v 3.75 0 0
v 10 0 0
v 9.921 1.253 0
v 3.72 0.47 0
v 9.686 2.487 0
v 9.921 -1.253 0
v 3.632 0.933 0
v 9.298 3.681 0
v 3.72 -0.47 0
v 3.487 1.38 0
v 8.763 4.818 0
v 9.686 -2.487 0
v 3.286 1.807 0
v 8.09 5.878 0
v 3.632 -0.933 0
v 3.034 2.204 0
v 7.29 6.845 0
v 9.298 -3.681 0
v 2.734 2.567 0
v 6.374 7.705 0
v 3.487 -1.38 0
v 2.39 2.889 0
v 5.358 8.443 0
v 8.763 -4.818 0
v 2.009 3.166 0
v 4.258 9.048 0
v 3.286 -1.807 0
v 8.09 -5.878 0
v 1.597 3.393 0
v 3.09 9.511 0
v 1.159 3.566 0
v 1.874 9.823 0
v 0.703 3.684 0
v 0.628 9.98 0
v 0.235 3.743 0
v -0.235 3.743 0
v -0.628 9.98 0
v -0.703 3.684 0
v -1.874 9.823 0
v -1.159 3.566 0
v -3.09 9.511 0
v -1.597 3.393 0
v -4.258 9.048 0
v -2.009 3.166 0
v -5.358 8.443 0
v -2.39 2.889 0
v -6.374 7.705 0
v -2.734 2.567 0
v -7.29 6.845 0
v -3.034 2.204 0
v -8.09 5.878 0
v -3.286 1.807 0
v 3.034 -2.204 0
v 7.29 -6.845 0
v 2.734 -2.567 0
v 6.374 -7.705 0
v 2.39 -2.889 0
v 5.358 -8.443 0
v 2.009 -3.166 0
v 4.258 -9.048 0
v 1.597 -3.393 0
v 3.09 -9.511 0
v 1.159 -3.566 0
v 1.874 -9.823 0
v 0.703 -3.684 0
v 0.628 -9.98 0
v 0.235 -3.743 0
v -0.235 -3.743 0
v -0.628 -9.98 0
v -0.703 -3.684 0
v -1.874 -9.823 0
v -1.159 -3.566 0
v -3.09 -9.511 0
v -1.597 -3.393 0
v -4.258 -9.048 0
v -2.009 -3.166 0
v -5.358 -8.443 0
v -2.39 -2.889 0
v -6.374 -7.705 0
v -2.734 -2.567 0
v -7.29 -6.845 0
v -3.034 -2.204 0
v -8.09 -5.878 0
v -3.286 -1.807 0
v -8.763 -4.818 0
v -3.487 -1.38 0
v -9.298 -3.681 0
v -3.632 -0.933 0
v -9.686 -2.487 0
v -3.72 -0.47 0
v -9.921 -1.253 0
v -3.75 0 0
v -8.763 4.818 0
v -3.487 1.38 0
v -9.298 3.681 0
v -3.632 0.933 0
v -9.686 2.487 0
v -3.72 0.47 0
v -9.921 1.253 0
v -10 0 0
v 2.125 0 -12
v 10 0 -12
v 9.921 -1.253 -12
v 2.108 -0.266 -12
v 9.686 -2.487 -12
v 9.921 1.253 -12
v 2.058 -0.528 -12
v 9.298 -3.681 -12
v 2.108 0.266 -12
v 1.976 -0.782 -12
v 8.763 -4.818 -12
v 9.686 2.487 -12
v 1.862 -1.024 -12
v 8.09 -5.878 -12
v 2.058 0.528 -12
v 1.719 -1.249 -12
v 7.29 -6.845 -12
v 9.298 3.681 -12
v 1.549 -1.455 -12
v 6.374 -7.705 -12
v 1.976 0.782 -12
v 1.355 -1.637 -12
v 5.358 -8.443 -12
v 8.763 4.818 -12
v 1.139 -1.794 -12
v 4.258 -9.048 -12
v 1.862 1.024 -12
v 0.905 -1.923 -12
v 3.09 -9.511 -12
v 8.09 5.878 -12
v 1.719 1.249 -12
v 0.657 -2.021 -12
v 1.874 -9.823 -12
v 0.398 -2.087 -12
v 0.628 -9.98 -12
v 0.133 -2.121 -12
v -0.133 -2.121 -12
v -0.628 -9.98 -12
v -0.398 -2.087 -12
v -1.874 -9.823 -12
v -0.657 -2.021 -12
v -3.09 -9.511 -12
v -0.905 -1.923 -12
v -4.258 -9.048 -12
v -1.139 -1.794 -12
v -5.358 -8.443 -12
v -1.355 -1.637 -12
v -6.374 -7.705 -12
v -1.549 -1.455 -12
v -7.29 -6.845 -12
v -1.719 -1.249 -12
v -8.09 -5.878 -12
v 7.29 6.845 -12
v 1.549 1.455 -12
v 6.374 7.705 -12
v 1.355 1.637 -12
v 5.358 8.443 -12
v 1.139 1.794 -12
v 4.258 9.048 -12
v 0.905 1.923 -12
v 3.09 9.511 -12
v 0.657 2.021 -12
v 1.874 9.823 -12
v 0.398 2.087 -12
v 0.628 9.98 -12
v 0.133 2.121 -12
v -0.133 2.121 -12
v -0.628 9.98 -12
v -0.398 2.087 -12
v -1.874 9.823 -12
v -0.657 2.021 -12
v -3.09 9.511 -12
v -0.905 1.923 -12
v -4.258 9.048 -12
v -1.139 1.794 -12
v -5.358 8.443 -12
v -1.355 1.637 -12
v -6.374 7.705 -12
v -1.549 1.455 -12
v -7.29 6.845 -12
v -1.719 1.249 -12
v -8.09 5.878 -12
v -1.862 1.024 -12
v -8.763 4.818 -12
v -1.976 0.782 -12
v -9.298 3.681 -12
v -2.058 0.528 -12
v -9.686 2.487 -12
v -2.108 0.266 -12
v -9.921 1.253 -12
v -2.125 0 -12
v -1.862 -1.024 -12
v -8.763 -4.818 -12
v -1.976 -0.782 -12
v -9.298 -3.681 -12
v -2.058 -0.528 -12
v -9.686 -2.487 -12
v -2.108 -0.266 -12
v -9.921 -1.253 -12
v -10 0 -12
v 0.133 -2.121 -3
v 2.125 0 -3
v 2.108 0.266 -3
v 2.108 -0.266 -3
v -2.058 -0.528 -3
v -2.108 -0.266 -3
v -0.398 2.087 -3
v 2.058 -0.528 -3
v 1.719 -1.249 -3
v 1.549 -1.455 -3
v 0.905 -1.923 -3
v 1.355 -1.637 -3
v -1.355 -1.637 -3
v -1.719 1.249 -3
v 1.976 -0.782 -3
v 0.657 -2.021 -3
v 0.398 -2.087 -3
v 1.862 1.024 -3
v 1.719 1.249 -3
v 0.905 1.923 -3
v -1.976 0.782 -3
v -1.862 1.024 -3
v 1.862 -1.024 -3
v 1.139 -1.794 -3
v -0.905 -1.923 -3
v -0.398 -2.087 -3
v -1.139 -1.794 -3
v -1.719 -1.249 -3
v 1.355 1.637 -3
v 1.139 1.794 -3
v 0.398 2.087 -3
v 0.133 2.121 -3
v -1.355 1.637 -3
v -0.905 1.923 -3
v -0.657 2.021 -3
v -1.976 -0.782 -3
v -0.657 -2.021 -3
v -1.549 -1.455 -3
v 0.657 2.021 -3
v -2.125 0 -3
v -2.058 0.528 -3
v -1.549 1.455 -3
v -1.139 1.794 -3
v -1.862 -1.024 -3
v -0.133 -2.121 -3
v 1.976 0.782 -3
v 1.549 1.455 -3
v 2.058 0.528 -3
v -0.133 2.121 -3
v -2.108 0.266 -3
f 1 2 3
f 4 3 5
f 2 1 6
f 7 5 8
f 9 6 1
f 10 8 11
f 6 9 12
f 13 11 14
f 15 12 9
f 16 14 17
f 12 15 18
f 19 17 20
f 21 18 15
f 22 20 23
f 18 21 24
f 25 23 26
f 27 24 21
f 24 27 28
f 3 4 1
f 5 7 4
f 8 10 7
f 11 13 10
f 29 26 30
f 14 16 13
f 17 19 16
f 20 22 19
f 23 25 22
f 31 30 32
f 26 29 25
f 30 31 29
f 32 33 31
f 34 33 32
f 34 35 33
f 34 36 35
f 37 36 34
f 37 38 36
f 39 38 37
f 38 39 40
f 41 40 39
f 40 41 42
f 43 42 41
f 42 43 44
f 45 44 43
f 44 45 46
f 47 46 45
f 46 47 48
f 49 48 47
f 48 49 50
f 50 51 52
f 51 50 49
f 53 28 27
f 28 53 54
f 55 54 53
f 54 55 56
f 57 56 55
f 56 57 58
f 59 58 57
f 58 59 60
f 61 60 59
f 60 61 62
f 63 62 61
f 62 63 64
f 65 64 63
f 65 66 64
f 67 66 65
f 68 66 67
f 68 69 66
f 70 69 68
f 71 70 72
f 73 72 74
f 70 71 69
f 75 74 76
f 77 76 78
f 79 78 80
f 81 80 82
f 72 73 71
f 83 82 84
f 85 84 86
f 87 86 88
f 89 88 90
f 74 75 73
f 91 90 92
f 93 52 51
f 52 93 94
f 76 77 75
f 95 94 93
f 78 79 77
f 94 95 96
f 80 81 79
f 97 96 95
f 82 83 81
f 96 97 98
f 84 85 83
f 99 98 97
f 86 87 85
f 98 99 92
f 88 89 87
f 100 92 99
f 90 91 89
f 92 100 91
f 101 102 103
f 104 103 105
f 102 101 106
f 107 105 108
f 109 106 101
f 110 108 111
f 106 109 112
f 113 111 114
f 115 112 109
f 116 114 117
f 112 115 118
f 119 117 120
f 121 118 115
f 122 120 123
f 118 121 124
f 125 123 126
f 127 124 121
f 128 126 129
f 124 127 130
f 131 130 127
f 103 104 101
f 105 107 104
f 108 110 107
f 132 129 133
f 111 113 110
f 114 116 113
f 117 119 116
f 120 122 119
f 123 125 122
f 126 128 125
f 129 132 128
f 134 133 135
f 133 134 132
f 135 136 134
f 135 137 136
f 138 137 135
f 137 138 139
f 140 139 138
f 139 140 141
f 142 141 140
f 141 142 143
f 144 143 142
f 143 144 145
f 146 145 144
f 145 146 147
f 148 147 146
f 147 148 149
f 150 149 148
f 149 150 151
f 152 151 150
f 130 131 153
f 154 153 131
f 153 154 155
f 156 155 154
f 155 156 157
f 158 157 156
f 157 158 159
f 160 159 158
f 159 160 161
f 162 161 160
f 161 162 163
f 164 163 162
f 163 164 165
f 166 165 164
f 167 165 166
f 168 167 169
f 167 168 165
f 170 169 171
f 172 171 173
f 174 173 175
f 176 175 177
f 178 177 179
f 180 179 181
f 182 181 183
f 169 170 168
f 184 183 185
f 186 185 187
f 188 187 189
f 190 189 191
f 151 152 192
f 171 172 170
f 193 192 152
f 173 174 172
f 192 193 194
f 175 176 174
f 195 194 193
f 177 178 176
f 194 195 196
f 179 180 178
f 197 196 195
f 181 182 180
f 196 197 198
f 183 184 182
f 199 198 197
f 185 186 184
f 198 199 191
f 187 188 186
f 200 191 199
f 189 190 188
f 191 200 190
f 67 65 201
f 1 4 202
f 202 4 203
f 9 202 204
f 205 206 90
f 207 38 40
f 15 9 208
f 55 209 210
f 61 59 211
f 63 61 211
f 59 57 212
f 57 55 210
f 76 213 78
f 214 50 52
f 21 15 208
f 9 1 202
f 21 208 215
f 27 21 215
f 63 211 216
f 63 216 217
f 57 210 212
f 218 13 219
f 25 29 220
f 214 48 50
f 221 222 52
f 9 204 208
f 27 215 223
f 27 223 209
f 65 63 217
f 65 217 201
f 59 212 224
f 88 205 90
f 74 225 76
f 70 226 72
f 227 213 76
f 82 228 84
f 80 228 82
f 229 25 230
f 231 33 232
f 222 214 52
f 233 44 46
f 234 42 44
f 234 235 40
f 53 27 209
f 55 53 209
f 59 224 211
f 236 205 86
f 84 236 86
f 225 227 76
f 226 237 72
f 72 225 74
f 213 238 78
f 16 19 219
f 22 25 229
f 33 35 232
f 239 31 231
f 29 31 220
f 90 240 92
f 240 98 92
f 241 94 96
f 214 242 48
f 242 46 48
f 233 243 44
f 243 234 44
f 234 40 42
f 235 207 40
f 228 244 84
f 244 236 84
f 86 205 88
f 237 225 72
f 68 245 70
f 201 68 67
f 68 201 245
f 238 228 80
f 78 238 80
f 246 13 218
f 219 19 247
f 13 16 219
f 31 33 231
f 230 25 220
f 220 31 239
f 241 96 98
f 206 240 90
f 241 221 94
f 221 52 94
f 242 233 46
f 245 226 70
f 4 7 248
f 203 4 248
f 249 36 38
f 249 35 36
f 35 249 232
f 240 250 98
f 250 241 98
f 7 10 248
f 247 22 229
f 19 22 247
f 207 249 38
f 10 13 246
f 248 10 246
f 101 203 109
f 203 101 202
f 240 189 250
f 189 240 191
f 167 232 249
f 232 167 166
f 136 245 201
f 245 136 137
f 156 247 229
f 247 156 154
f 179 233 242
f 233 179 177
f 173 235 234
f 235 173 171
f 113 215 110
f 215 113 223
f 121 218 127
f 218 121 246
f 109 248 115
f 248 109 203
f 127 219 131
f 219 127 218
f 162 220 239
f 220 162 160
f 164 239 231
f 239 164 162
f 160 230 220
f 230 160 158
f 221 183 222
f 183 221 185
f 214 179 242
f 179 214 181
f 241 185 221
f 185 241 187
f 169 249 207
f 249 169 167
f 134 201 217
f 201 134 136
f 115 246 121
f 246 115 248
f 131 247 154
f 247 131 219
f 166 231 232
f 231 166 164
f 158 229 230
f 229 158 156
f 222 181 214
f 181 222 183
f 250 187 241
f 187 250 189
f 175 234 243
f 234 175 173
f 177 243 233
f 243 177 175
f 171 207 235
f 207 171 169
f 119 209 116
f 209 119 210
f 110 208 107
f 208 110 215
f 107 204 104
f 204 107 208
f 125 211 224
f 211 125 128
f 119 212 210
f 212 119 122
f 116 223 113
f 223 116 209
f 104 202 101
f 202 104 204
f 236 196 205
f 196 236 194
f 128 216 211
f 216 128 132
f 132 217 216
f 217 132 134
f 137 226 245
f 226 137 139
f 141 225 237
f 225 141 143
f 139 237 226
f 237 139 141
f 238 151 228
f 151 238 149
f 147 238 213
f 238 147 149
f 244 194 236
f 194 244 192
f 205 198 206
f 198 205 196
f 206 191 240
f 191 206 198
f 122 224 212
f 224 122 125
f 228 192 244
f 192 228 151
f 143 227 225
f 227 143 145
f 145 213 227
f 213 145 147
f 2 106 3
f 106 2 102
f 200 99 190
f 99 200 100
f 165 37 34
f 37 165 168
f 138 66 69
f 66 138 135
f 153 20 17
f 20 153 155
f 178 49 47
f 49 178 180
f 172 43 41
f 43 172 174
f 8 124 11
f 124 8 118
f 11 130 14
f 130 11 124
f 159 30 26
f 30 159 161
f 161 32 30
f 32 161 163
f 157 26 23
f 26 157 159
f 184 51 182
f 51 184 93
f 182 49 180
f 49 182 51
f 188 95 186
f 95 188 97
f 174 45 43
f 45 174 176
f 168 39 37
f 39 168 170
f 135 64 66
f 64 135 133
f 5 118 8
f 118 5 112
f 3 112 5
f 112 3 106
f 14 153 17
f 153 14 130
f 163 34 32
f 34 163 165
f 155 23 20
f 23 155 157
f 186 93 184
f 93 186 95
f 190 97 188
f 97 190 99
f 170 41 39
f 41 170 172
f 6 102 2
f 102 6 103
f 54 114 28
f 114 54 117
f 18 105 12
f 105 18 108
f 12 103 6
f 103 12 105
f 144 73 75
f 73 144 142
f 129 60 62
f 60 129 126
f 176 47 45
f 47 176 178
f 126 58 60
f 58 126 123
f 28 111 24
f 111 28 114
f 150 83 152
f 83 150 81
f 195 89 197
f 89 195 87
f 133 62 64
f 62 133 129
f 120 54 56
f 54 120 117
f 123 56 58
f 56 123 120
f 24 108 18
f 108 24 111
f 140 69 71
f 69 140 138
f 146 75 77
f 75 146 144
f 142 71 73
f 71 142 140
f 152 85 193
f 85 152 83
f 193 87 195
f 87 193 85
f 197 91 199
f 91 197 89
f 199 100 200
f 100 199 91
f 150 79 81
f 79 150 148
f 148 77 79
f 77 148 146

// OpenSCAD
$fn = 50;


difference() {
	union() {
		translate(v = [0, 0, -12.0000000000]) {
			cylinder(h = 12, r = 10.0000000000);
		}
	}
	union() {
		translate(v = [0, 0, 0]) {
			rotate(a = [0, 0, 0]) {
				difference() {
					union() {
						#translate(v = [0, 0, -12.0000000000]) {
							cylinder(h = 12, r = 2.0000000000);
						}
						#translate(v = [0, 0, -3]) {
							cylinder(h = 3, r = 10.0000000000, r1 = 2.1250000000, r2 = 3.7500000000);
						}
						#translate(v = [0, 0, -12.0000000000]) {
							cylinder(h = 12, r = 2.1250000000);
						}
						#translate(v = [0, 0, -12.0000000000]) {
							cylinder(h = 12, r = 2.0000000000);
						}
					}
					union();
				}
			}
		}
	}
}
